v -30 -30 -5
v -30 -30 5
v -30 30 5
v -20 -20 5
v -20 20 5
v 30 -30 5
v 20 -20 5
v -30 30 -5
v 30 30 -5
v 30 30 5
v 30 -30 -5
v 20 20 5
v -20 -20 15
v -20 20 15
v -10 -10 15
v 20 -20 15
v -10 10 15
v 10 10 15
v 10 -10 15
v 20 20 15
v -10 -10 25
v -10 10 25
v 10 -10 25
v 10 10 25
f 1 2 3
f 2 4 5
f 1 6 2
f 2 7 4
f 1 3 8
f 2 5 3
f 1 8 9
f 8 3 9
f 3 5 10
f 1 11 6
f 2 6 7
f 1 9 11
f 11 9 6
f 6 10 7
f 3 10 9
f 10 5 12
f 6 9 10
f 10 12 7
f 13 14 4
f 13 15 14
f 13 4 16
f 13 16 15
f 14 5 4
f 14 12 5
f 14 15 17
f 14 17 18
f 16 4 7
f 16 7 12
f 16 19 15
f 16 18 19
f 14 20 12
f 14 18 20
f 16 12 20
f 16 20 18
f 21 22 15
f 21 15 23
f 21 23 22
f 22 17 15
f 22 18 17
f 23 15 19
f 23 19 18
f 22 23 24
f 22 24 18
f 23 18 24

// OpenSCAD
// 3段の階段状ピラミッド

// 1段目（底面）：60mm x 60mm x 高さ10mm
translate([0, 0, 0]) {
    cube([60, 60, 10], center = true);
}

// 2段目（中段）：40mm x 40mm x 高さ10mm
translate([0, 0, 10]) {
    cube([40, 40, 10], center = true);
}

// 3段目（上段）：20mm x 20mm x 高さ10mm
translate([0, 0, 20]) {
    cube([20, 20, 10], center = true);
}
